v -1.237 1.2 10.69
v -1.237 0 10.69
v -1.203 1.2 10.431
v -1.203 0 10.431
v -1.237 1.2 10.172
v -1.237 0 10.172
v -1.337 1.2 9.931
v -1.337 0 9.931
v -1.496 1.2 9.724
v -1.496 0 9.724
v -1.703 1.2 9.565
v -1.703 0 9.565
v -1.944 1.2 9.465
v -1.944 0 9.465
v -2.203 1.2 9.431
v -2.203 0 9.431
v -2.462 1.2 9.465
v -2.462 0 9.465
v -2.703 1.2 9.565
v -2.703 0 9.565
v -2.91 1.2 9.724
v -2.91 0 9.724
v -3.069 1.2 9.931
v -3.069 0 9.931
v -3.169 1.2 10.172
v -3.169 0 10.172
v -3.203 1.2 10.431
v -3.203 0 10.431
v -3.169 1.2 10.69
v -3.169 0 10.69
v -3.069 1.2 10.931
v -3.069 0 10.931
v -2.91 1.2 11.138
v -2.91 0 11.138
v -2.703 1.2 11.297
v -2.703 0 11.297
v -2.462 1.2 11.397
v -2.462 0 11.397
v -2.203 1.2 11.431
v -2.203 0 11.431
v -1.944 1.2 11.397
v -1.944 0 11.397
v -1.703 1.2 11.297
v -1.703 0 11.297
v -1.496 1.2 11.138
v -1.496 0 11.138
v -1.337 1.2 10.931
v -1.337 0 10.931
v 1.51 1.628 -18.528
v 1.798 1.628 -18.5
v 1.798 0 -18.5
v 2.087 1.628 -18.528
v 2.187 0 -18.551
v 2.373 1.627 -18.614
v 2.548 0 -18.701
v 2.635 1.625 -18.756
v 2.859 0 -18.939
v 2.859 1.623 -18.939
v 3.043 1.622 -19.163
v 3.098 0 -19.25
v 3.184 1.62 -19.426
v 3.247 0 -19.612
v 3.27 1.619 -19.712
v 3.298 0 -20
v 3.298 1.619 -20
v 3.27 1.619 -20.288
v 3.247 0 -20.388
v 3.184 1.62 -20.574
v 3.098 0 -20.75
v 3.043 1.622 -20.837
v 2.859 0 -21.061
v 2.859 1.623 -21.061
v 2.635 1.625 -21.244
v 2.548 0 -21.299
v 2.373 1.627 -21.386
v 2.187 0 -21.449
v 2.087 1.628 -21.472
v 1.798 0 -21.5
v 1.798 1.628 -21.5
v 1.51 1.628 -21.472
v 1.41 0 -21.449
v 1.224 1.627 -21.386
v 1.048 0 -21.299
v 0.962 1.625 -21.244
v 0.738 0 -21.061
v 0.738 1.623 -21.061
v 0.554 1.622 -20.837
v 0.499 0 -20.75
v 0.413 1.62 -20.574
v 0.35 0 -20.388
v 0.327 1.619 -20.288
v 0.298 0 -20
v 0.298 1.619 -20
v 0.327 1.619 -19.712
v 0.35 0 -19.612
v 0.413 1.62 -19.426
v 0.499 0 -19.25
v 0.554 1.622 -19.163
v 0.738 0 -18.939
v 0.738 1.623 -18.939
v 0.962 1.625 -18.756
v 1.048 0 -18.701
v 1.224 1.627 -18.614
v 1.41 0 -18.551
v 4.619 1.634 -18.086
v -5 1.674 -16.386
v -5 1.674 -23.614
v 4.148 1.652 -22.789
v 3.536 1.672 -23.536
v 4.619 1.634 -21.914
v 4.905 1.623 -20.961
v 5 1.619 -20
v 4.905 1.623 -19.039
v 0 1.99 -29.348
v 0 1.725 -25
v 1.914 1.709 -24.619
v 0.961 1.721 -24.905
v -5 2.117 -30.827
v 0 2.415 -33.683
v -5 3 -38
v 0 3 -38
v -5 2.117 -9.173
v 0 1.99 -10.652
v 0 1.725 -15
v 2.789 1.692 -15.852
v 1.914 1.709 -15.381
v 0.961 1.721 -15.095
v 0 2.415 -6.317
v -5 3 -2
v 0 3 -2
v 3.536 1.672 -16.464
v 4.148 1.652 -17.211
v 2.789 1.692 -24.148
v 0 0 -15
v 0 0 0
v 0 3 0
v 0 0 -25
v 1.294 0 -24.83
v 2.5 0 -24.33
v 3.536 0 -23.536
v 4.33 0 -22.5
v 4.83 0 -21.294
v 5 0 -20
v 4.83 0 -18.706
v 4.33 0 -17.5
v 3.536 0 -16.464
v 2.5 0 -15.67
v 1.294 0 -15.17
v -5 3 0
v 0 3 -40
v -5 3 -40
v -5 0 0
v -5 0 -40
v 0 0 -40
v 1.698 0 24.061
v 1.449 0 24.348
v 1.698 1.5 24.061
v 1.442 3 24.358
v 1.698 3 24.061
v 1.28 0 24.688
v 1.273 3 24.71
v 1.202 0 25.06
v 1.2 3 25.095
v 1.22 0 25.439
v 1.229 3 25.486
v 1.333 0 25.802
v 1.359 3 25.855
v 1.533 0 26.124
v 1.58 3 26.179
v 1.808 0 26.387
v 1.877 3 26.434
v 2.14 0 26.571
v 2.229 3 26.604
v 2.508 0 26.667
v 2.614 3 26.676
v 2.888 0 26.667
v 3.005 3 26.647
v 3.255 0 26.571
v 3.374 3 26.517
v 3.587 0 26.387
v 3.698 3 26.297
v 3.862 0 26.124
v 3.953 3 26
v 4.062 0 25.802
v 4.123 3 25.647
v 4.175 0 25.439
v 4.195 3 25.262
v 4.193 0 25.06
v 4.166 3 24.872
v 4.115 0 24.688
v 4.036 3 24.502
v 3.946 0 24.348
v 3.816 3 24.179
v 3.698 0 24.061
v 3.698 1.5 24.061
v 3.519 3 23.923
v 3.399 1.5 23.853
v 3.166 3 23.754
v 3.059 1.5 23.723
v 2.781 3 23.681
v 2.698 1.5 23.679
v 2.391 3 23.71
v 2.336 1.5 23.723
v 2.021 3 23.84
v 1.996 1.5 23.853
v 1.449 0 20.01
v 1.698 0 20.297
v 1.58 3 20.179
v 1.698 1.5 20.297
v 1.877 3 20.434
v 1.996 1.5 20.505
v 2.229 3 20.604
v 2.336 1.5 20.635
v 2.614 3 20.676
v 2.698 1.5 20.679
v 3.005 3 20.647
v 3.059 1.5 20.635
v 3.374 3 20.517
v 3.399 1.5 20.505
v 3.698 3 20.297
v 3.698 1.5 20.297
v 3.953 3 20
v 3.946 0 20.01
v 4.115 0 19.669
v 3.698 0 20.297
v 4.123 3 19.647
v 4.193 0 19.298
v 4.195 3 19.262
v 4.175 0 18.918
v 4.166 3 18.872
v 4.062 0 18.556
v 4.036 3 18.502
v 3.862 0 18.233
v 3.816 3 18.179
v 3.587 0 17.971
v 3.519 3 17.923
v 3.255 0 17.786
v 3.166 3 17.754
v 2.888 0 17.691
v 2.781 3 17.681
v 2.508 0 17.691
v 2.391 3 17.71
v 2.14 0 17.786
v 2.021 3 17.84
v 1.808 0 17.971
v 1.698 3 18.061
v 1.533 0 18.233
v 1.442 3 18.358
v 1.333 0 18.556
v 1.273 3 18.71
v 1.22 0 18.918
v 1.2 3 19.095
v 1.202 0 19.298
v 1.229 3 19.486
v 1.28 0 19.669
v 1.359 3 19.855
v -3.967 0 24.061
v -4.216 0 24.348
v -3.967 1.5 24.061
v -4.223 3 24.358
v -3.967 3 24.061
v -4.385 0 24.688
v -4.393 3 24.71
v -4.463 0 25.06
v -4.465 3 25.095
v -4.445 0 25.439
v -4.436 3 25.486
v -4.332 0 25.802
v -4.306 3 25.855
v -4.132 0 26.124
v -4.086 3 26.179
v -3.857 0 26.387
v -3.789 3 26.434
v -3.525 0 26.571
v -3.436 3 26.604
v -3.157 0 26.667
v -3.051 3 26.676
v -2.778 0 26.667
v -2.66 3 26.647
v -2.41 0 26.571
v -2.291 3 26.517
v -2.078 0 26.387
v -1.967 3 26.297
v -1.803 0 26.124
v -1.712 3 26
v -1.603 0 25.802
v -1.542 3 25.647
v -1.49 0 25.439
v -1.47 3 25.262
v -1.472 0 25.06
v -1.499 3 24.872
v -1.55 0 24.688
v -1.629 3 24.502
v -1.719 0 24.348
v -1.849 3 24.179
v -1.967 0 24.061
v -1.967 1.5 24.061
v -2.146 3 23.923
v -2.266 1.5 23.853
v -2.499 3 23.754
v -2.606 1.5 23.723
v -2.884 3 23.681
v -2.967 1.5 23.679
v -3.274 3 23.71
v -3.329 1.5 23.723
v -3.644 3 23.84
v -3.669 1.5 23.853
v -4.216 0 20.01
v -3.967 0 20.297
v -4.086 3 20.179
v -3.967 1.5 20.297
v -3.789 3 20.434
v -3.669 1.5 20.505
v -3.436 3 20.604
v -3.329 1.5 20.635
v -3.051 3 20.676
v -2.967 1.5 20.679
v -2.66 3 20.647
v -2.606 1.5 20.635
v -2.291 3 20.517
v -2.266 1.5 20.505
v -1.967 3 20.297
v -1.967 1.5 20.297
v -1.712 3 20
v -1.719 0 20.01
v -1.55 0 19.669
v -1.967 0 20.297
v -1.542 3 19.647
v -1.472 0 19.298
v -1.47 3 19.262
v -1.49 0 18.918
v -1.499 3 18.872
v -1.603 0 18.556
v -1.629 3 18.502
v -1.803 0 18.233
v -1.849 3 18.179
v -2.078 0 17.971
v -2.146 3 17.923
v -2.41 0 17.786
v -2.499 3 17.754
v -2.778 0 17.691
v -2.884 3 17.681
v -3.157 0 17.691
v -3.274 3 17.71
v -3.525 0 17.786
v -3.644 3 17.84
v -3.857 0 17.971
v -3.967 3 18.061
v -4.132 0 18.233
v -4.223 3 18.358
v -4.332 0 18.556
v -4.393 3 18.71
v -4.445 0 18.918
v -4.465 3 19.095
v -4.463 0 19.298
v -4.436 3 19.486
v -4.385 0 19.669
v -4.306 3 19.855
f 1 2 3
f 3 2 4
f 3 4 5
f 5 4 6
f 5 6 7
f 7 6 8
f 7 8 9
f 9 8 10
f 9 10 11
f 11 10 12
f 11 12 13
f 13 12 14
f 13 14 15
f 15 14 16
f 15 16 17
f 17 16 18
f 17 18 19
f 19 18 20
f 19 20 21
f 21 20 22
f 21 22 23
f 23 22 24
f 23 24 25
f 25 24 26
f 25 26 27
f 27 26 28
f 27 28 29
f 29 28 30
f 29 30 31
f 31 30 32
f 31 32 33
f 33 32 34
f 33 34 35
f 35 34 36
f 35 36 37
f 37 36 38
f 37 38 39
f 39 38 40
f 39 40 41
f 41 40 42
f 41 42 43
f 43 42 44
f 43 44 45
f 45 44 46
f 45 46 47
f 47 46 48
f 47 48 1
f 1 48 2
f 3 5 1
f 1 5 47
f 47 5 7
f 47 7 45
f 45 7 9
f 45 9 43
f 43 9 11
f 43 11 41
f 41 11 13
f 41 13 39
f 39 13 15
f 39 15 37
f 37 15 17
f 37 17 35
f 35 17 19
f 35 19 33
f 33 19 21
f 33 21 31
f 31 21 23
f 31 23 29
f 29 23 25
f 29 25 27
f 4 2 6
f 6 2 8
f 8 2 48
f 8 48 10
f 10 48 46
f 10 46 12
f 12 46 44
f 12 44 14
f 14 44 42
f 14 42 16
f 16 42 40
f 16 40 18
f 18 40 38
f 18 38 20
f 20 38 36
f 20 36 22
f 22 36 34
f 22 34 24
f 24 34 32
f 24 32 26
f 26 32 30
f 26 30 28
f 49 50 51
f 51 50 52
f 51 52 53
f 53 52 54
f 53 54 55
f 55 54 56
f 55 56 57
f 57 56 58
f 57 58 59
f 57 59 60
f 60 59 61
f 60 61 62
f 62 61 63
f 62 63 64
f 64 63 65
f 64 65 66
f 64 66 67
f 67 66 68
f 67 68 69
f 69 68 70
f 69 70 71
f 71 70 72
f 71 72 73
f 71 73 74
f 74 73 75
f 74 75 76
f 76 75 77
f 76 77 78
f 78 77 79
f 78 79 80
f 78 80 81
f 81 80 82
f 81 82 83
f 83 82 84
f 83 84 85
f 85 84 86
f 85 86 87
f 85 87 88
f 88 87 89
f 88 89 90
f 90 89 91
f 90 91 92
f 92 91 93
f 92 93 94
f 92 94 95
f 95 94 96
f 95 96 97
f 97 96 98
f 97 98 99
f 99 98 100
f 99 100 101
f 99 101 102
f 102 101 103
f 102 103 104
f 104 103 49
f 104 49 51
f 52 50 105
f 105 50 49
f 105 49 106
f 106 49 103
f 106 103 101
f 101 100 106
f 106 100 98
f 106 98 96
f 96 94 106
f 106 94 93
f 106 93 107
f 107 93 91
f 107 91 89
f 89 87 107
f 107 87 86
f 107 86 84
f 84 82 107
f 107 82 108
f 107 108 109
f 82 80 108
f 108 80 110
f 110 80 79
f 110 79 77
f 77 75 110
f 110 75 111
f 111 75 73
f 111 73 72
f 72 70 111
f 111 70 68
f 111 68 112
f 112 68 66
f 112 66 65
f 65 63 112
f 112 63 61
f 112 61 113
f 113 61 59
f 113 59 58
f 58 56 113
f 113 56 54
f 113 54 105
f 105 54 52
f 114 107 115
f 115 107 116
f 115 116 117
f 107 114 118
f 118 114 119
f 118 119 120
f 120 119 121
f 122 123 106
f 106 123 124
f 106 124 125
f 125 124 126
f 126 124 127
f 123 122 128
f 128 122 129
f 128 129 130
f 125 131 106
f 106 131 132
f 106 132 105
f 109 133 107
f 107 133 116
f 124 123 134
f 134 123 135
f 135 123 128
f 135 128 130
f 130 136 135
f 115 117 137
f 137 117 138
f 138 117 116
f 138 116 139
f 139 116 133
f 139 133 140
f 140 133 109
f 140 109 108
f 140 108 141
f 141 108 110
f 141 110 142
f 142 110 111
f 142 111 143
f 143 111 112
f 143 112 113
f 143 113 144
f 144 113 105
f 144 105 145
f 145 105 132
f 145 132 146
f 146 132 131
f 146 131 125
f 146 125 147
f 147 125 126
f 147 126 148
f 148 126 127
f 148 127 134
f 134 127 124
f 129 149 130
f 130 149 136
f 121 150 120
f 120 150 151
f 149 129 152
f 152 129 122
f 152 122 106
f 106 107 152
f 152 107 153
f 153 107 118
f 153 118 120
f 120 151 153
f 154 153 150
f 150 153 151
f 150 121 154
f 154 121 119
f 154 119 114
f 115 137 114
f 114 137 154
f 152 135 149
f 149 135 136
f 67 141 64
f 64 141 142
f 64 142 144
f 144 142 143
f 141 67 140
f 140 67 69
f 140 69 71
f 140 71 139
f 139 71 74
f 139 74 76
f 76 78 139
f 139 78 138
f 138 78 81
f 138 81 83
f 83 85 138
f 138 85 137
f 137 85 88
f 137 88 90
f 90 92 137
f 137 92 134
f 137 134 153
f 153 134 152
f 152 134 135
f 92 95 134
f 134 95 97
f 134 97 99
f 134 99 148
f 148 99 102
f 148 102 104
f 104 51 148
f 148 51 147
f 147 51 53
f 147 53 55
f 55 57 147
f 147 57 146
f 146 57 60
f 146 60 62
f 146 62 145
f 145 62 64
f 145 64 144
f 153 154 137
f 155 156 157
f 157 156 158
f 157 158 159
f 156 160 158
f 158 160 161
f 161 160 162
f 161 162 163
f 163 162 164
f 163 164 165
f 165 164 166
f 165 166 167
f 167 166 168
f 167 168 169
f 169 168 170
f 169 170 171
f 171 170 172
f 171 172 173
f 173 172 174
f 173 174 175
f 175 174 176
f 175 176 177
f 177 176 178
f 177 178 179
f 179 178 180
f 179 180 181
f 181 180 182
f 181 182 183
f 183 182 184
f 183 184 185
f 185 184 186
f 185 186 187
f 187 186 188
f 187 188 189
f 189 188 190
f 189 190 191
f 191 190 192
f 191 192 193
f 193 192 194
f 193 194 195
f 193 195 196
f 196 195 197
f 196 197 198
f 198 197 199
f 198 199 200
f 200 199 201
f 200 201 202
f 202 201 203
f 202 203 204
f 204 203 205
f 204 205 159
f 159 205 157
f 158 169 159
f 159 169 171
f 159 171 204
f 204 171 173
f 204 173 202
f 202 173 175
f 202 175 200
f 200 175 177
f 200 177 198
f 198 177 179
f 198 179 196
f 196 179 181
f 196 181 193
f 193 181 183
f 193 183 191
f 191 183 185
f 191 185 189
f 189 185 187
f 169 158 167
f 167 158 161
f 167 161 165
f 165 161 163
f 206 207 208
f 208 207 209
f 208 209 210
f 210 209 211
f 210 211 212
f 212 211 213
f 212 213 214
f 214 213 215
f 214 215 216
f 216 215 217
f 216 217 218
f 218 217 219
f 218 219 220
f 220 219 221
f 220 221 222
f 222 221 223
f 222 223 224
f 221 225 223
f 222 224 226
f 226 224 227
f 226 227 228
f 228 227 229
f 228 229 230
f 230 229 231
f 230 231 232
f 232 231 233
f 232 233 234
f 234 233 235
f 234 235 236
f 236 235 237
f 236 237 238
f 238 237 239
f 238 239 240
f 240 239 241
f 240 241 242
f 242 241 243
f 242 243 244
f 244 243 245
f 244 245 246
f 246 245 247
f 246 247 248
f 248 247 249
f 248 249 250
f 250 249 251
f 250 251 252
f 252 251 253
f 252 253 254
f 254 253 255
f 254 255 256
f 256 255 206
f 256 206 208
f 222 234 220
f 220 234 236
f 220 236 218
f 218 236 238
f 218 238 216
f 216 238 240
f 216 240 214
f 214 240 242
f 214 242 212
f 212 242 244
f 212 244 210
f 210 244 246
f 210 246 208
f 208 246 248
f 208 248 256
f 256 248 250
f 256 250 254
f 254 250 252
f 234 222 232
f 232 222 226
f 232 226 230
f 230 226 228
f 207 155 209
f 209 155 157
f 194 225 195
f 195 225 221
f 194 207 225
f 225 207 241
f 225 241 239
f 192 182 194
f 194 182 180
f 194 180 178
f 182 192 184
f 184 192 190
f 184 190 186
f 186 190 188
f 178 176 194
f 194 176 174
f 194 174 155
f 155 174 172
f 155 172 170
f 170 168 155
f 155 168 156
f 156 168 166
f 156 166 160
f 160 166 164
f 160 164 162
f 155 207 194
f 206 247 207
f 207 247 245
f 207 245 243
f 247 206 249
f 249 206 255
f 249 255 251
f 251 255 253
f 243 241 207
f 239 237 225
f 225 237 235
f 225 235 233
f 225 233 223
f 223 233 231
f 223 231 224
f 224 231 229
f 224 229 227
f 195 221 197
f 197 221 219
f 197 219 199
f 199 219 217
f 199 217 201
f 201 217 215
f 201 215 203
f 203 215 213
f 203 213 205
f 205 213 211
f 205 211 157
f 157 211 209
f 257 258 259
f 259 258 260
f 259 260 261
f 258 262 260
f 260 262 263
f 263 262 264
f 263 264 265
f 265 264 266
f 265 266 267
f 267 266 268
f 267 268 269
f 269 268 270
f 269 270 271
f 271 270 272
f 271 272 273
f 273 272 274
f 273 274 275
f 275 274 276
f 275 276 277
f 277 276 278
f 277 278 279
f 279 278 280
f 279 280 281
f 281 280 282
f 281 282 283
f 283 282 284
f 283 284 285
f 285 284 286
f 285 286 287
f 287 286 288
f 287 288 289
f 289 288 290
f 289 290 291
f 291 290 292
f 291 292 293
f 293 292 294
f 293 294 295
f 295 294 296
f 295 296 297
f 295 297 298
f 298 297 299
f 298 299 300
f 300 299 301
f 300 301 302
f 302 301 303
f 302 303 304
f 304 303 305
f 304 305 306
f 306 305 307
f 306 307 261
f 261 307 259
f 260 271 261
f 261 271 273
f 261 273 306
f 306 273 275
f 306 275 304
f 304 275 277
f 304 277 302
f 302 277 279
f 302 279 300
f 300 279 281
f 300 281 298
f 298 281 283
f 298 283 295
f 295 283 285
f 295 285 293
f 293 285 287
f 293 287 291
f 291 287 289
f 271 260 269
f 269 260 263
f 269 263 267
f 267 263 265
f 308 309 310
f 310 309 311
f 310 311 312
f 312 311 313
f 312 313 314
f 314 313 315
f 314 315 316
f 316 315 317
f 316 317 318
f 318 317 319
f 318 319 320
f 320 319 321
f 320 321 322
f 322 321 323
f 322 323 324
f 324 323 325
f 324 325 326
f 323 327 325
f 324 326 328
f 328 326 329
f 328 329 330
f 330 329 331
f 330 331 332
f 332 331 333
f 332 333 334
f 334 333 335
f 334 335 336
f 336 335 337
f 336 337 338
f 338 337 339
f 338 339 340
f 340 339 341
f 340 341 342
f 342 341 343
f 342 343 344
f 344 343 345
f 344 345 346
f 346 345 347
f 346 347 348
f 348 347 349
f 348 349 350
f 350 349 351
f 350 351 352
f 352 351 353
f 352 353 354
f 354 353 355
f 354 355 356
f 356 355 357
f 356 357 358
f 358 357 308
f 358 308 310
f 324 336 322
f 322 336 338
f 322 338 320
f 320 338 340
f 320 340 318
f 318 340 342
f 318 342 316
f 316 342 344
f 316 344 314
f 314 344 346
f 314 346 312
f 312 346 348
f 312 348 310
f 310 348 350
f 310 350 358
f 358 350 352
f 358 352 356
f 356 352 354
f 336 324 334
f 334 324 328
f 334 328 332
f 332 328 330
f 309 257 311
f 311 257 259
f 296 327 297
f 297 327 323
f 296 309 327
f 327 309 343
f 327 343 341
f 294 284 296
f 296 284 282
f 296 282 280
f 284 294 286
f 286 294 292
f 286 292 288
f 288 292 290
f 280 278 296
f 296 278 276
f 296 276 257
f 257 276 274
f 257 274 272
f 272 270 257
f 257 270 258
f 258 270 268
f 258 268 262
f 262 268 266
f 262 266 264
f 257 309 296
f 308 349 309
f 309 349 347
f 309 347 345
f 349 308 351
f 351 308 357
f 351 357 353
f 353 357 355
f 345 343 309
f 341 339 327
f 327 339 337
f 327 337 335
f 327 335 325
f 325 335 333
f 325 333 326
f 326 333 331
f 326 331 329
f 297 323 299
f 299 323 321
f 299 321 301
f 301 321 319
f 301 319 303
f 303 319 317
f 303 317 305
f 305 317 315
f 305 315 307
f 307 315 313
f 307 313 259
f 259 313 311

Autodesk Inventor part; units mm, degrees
ref_plane "YZ Plane" through (0, 0, 0) normal (1, 0, 0) x (0, 1, 0)
ref_plane "XZ Plane" through (0, 0, 0) normal (0, 1, 0) x (-1, 0, 0)
ref_plane "XY Plane" through (0, 0, 0) normal (0, 0, 1) x (1, 0, 0)
sketch "Sketch1" plane through (0, 0, 0) normal (0, 1, 0) x (-1, 0, 0)
  line L0 (0, 0) -> (5, 0)
  line L1 (5, 0) -> (5, -40)
  line L2 (5, -40) -> (0, -40)
  arc A0 (0, -15) -> (0, -25) centre (0, -20) ccw
  line L3 (0, -40) -> (0, -25)
  line L4 (0, -15) -> (0, 0)
  dimension "d0" = 5
  dimension "d1" = 40
extrude "Extrusion1" add sketch "Sketch1" along normal blind 3
sketch "Sketch2" plane through (-5, 0, -40) normal (-1, 0, 0) x (0, 0, 1)
  line L0 (0, 3) -> (40, 3) projected
  line L1 (40, 3) -> (38, 3)
  line L2 (40, 3) -> (25, 3) projected
  line L3 (15, 3) -> (0, 3) projected
  line L4 (0, 3) -> (2, 3)
  arc A0 (2, 3) -> (38, 3) centre (20, 119.5843) ccw
  point P0 (40, 0)
  dimension "d4" = 2
  dimension "d5" = 2
extrude "Extrusion2" cut sketch "Sketch2" against normal blind 10
sketch "Sketch3" plane through (0, 0, 0) normal (0, -1, 0) x (1, 0, 0)
  arc A0 (0, -25) -> (0, -15) centre (0, -20) ccw projected
  circle A1 centre (1.7985, -20) radius 1.5
  point P0 (0, 0)
  dimension "d8" = 3
extrude "Extrusion3" cut sketch "Sketch3" against normal blind 10
sketch "Sketch4" plane through (0, 0, 0) normal (0, -1, 0) x (1, 0, 0)
  circle A0 centre (-2.9675, 25.1787) radius 1.5
  circle A1 centre (-2.9675, 19.1787) radius 1.5
  line L0 (-1.9675, 24.0607) -> (-1.9675, 20.2967)
  line L1 (-3.9675, 24.0607) -> (-3.9675, 20.2967)
  circle A2 centre (2.6977, 25.1787) radius 1.5
  circle A3 centre (2.6977, 19.1787) radius 1.5
  line L2 (3.6977, 24.0607) -> (3.6977, 20.2967)
  line L3 (1.6977, 24.0607) -> (1.6977, 20.2967)
  point P0 (0, 0)
  dimension "d11" = 3
  dimension "d14" = 3
  dimension "d17" = 3
  dimension "d18" = 3
extrude "Extrusion4" add sketch "Sketch4" against normal blind 1.5 contours A0 L0 A1 L1 | A2 L2 A3 L3
sketch "Sketch6" plane through (0, 0, 0) normal (0, -1, 0) x (1, 0, 0)
  circle A0 centre (-2.2031, 10.4312) radius 1
  point P0 (0, 0)
  dimension "d27" = 2
extrude "Extrusion6" add sketch "Sketch6" against normal blind 1.2
sketch "Sketch7" plane through (0, 0, 0) normal (0, -1, 0) x (1, 0, 0)
  circle A0 centre (-2.9675, 25.1787) radius 1.5
  circle A1 centre (-2.9675, 19.1787) radius 1.5
  line L0 (-1.9675, 24.0607) -> (-1.9675, 20.2967)
  line L1 (-3.9675, 24.0607) -> (-3.9675, 20.2967)
  circle A2 centre (2.6977, 25.1787) radius 1.5
  circle A3 centre (2.6977, 19.1787) radius 1.5
  line L2 (3.6977, 24.0607) -> (3.6977, 20.2967)
  line L3 (1.6977, 24.0607) -> (1.6977, 20.2967)
  point P0 (0, 0)
  dimension "d30" = 3
  dimension "d31" = 3
  dimension "d32" = 3
  dimension "d33" = 3
extrude "Extrusion7" add sketch "Sketch7" against normal blind 3 contours A0 | A1 | A2 | A3
properties part number "mano"
